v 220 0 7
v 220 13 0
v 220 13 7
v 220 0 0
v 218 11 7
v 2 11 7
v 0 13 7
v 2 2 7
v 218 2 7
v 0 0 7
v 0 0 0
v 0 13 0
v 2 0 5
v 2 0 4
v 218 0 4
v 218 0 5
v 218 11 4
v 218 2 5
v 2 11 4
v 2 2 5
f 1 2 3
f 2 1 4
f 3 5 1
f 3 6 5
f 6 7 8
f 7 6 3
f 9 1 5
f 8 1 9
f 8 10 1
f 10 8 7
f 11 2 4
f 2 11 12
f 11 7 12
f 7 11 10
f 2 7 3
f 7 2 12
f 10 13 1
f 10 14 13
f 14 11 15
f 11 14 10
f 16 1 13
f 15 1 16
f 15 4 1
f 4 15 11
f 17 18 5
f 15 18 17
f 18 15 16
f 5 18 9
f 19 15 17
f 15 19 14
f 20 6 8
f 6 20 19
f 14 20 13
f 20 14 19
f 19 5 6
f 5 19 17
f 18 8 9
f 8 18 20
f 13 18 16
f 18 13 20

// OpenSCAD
$fa = 1;
$fs = 0.4;

width = 9;
height = 216;
gap = 1;
thickness = 2;
bodyWidth = width + 2 * thickness;

difference(){
    // основа
    cube([height + 2*thickness, bodyWidth, 3 * thickness + gap]);

    // верхний вырез
    translate([thickness, thickness, 2 * thickness])
    cube([height, width, gap + thickness]);
    
    // щель
    translate([thickness, 0, 2 * thickness])
    cube([height, width, gap]);
}
